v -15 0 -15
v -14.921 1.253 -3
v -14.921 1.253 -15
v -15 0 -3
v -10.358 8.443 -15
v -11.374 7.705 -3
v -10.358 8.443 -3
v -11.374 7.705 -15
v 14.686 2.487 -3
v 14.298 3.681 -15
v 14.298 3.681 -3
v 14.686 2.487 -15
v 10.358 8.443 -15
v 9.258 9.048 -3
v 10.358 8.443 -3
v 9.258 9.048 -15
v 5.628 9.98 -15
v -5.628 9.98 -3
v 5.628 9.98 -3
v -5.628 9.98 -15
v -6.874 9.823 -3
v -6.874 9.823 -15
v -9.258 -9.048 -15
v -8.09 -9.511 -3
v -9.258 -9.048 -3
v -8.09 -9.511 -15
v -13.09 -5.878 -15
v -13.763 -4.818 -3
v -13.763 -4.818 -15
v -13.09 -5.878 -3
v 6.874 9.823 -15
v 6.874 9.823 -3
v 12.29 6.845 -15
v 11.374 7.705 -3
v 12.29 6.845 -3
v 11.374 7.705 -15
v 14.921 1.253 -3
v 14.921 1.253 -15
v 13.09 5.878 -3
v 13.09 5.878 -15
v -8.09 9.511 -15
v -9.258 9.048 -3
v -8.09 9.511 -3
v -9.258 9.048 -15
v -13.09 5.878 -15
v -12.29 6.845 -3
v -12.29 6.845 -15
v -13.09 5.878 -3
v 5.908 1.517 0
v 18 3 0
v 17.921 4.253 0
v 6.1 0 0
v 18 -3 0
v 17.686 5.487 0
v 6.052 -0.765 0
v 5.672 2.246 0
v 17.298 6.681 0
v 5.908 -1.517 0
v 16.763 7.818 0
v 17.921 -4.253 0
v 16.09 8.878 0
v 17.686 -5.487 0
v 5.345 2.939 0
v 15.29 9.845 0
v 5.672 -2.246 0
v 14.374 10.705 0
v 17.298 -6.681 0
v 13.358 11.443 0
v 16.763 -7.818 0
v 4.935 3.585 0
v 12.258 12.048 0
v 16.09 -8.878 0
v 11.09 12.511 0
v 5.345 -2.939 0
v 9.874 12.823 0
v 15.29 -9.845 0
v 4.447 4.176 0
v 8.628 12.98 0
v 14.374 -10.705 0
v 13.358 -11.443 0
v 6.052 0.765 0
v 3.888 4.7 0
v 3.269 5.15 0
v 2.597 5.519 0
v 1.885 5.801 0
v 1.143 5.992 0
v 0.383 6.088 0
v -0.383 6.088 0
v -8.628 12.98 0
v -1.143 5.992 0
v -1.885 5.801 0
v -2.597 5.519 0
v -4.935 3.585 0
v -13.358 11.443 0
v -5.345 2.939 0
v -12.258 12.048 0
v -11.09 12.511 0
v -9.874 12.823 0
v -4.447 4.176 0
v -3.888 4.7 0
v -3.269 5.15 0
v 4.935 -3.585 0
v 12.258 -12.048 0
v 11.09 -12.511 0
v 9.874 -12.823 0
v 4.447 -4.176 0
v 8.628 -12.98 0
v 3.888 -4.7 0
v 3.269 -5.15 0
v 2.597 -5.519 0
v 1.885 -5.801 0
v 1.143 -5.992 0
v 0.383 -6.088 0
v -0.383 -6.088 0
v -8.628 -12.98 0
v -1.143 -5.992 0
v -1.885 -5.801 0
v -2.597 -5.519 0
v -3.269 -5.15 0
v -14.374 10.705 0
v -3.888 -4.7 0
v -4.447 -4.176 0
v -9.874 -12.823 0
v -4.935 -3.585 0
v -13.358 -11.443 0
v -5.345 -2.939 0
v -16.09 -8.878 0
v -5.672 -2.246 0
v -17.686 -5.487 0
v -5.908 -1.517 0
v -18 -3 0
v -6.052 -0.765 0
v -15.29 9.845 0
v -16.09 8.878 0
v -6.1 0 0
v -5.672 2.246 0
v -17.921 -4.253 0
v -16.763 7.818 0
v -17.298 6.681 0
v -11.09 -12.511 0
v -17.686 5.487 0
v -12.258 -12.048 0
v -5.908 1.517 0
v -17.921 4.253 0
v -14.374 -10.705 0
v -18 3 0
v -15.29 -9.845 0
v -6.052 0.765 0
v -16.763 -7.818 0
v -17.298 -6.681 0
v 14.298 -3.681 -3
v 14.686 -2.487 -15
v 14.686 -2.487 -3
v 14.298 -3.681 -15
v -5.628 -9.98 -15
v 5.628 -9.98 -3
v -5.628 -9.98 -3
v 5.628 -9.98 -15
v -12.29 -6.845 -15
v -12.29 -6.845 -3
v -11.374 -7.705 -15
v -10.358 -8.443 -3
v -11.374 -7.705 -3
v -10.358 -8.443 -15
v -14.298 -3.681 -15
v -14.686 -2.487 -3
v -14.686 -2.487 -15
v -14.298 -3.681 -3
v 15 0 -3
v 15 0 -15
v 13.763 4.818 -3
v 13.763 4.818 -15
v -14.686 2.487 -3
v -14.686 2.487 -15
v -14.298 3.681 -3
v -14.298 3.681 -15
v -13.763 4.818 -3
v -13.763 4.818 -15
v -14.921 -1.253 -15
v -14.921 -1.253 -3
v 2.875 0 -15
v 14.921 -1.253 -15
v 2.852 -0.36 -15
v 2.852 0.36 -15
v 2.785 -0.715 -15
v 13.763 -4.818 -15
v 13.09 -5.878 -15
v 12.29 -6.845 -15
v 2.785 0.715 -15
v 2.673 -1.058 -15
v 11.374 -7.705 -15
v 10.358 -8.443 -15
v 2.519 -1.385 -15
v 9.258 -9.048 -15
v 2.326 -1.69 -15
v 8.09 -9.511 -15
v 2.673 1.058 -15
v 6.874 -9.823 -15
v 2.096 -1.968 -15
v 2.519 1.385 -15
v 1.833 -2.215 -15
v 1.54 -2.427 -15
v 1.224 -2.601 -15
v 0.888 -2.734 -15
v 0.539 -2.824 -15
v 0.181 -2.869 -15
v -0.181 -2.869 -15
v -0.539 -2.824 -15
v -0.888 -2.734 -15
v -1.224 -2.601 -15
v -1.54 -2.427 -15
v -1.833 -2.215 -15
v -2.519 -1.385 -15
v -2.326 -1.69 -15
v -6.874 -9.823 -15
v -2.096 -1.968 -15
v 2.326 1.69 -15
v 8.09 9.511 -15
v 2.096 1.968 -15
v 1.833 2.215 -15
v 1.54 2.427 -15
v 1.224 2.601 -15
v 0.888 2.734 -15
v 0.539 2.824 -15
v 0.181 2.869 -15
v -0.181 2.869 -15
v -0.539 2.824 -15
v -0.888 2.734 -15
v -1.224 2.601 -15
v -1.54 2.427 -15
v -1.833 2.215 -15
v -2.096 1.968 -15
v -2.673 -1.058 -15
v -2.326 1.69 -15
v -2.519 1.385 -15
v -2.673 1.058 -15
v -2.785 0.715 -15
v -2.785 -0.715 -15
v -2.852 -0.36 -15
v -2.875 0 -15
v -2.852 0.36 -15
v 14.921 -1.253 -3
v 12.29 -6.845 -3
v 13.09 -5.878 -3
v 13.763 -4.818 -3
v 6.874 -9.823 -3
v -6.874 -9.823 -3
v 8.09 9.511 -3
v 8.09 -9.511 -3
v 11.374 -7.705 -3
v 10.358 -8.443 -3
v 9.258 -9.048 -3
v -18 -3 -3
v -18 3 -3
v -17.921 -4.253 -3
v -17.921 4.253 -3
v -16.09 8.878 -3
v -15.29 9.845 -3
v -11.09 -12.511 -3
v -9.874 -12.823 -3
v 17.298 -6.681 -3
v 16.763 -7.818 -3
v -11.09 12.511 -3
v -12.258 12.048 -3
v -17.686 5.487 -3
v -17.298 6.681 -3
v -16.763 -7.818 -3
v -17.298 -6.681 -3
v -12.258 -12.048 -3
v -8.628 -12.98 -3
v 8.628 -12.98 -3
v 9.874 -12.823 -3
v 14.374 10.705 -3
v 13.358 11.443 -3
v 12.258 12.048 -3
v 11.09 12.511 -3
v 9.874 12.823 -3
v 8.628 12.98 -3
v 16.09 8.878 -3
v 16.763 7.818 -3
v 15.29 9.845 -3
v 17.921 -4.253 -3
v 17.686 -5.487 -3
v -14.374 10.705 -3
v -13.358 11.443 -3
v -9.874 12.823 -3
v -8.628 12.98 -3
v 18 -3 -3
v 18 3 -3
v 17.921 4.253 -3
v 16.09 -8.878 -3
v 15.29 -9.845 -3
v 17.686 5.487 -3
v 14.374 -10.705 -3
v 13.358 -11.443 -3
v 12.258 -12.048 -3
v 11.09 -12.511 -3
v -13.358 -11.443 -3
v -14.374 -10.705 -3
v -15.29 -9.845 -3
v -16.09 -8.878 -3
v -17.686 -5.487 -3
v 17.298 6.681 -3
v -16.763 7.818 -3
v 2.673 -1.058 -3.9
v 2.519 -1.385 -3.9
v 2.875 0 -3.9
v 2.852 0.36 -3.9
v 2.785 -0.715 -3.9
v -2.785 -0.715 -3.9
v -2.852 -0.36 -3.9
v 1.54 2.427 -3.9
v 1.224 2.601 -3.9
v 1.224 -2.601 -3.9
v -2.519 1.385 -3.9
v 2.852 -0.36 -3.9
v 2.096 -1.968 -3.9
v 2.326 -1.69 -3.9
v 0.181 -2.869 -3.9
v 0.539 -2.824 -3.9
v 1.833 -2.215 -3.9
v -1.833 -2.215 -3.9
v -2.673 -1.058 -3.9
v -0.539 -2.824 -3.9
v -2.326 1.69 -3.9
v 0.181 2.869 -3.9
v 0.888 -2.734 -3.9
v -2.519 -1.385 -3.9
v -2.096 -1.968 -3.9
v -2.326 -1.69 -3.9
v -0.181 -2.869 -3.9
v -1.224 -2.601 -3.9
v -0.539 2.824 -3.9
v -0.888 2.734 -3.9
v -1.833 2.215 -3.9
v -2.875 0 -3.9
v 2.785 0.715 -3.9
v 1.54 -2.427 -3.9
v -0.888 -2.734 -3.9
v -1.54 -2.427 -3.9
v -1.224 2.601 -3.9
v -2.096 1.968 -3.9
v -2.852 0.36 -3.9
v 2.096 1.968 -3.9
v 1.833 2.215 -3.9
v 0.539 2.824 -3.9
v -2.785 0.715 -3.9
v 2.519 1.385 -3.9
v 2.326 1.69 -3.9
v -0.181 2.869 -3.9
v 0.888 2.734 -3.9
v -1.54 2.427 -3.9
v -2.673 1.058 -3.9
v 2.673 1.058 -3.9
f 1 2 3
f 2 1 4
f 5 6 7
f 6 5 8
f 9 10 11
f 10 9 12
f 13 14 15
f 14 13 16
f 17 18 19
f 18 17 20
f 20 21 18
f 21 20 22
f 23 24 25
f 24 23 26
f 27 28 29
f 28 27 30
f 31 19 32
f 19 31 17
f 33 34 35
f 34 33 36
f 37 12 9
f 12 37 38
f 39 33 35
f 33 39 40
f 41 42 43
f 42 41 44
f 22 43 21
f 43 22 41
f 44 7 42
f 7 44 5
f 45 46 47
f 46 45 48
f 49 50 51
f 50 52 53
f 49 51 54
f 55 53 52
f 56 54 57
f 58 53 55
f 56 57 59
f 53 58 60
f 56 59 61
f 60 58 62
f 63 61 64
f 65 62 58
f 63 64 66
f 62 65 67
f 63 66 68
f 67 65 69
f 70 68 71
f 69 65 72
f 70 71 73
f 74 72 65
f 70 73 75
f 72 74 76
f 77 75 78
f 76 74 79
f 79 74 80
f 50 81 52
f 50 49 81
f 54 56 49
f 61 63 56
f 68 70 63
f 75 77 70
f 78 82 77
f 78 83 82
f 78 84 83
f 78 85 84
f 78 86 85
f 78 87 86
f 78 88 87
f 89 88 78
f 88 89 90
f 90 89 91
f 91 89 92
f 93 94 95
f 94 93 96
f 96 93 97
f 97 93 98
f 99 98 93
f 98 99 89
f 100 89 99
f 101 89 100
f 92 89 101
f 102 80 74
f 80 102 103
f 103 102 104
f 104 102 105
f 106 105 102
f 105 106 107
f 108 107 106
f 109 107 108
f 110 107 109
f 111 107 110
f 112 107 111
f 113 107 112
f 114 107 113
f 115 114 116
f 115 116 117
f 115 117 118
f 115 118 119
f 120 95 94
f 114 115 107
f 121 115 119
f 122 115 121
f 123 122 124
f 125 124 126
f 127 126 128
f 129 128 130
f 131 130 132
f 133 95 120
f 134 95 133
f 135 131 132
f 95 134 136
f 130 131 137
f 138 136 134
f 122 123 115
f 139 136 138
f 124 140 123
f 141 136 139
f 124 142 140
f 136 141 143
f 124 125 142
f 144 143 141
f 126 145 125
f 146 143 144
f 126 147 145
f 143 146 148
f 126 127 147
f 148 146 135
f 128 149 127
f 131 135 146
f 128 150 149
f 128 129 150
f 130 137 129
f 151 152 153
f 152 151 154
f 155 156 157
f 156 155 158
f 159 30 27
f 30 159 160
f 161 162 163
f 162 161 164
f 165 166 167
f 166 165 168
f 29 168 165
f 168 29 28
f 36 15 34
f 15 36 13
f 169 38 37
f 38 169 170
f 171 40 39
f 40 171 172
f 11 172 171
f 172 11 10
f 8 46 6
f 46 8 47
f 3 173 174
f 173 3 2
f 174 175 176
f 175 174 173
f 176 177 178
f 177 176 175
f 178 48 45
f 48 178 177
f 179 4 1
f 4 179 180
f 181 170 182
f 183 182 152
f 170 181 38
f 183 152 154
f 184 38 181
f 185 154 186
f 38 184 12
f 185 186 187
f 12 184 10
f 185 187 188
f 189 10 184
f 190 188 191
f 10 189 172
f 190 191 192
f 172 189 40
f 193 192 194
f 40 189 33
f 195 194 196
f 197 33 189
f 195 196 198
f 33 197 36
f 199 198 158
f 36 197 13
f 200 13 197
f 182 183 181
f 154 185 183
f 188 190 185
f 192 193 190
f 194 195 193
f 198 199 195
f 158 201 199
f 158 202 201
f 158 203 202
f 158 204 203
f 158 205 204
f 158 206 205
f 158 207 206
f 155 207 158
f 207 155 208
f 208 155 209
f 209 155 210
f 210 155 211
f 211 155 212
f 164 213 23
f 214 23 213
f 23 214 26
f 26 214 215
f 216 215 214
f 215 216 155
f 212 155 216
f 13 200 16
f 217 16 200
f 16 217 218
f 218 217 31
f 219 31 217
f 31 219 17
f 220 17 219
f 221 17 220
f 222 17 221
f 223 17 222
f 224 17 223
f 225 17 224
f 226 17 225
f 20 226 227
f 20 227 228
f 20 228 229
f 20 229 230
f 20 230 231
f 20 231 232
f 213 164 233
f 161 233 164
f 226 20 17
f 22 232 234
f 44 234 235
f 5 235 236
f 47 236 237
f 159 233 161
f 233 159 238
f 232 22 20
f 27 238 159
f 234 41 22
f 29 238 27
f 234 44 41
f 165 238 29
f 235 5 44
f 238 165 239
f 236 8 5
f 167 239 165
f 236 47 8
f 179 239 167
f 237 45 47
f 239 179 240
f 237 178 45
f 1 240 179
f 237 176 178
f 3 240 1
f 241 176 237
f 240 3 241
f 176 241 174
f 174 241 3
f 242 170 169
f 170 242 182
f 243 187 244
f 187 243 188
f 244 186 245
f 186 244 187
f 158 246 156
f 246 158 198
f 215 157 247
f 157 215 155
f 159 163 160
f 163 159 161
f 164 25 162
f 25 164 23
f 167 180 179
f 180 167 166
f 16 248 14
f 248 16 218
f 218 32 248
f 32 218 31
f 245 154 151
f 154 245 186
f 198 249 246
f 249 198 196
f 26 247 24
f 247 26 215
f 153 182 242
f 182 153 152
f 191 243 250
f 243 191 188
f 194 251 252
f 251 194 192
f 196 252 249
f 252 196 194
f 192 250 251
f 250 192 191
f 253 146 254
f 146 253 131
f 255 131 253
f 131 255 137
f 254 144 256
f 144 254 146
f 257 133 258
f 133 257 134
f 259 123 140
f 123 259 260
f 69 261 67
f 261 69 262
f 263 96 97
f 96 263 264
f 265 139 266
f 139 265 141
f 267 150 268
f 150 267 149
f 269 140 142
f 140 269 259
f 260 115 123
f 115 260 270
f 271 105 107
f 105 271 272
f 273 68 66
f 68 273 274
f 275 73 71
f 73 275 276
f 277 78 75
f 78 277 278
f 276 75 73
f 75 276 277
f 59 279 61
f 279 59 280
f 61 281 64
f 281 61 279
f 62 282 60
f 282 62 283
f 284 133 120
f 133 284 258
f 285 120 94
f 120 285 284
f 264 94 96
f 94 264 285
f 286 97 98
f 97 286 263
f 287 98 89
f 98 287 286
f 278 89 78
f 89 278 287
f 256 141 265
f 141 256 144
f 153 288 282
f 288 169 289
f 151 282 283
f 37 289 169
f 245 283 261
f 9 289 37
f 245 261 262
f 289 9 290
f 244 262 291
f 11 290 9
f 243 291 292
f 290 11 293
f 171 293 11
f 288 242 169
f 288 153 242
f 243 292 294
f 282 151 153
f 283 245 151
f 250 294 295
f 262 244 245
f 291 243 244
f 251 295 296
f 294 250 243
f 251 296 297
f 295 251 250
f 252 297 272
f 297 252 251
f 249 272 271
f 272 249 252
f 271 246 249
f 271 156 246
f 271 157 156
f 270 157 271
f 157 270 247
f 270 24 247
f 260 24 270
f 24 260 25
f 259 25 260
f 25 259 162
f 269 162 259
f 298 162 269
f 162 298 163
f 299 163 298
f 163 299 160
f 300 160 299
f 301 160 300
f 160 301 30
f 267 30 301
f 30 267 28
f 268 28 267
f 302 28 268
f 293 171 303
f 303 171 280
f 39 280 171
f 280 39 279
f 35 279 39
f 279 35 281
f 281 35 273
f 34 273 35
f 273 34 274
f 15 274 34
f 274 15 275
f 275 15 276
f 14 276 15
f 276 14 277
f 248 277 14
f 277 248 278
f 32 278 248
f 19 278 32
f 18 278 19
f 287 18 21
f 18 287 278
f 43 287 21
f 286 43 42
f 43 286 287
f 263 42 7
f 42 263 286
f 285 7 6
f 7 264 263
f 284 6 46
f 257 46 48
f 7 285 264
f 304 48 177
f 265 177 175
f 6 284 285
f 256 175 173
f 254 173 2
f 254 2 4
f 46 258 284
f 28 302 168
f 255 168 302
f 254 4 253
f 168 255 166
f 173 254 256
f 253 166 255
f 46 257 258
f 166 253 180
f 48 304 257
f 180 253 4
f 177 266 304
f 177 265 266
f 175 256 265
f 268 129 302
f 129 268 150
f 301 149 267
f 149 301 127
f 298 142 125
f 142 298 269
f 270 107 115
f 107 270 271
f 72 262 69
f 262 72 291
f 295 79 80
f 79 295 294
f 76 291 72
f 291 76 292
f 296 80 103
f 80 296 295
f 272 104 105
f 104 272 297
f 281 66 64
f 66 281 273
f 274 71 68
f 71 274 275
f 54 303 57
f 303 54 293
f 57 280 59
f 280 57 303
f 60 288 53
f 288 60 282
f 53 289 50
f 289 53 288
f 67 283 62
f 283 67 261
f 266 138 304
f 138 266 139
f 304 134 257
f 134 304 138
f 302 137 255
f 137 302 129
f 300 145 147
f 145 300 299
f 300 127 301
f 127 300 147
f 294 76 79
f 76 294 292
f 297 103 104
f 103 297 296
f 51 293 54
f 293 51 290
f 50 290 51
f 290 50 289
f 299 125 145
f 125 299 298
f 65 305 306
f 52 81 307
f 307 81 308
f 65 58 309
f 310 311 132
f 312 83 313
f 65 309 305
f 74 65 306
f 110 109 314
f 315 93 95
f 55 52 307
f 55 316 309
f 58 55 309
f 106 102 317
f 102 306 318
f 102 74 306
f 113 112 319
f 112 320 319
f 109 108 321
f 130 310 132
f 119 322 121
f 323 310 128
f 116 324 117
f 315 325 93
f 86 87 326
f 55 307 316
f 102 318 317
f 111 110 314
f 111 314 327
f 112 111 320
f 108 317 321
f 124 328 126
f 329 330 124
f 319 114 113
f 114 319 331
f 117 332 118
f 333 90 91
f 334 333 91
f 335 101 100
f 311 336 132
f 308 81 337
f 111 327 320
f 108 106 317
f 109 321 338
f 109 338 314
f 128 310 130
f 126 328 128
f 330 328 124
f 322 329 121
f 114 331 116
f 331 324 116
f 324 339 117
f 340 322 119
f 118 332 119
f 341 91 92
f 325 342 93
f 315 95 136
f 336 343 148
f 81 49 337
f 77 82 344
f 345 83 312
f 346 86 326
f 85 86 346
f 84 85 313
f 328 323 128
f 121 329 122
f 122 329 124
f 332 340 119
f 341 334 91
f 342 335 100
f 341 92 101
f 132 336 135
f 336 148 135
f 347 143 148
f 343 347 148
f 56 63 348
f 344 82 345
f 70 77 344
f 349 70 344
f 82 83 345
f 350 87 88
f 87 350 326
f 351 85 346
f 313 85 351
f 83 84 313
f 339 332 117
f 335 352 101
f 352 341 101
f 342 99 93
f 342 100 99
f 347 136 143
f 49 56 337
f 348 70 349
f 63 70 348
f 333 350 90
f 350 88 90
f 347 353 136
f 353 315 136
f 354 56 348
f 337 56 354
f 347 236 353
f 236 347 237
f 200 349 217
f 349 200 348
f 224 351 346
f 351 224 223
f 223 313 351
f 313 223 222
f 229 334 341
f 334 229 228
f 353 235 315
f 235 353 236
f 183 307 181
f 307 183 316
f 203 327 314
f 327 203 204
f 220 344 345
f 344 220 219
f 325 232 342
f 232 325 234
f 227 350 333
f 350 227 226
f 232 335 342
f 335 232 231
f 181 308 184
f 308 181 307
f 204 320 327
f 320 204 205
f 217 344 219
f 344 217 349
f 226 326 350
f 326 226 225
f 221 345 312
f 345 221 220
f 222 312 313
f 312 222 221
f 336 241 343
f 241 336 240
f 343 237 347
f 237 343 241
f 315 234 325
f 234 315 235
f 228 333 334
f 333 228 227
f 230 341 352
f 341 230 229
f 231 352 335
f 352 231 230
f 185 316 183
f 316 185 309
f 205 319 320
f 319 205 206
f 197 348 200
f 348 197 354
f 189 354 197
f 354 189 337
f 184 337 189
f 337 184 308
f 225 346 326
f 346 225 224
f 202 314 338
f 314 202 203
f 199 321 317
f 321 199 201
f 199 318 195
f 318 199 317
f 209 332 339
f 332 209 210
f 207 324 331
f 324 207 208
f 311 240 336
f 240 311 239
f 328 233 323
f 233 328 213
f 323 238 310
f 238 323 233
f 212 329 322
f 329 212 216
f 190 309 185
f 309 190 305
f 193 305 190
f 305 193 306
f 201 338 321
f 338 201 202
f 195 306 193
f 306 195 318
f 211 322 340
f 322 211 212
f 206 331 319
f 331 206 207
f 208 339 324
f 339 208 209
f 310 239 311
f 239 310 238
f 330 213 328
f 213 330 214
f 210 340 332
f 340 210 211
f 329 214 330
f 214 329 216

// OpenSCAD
$fn = 50;


difference() {
	union() {
		translate(v = [0, 0, -15]) {
			hull() {
				translate(v = [-5.0000000000, 0.0000000000, 0]) {
					cylinder(h = 15, r = 10.0000000000);
				}
				translate(v = [5.0000000000, 0.0000000000, 0]) {
					cylinder(h = 15, r = 10.0000000000);
				}
				translate(v = [-5.0000000000, -0.0000000000, 0]) {
					cylinder(h = 15, r = 10.0000000000);
				}
				translate(v = [5.0000000000, -0.0000000000, 0]) {
					cylinder(h = 15, r = 10.0000000000);
				}
			}
		}
		translate(v = [0, 0, -3]) {
			hull() {
				translate(v = [-8.0000000000, 3.0000000000, 0]) {
					cylinder(h = 3, r = 10.0000000000);
				}
				translate(v = [8.0000000000, 3.0000000000, 0]) {
					cylinder(h = 3, r = 10.0000000000);
				}
				translate(v = [-8.0000000000, -3.0000000000, 0]) {
					cylinder(h = 3, r = 10.0000000000);
				}
				translate(v = [8.0000000000, -3.0000000000, 0]) {
					cylinder(h = 3, r = 10.0000000000);
				}
			}
		}
	}
	union() {
		translate(v = [0, 0, 0]) {
			rotate(a = [0, 0, 0]) {
				difference() {
					union() {
						#translate(v = [0, 0, -15.0000000000]) {
							cylinder(h = 15, r = 2.6000000000);
						}
						#translate(v = [0, 0, -3.9000000000]) {
							cylinder(h = 3.9000000000, r = 10.0000000000, r1 = 2.8750000000, r2 = 6.1000000000);
						}
						#translate(v = [0, 0, -15.0000000000]) {
							cylinder(h = 15, r = 2.8750000000);
						}
						#translate(v = [0, 0, -15.0000000000]) {
							cylinder(h = 15, r = 2.6000000000);
						}
					}
					union();
				}
			}
		}
	}
}
